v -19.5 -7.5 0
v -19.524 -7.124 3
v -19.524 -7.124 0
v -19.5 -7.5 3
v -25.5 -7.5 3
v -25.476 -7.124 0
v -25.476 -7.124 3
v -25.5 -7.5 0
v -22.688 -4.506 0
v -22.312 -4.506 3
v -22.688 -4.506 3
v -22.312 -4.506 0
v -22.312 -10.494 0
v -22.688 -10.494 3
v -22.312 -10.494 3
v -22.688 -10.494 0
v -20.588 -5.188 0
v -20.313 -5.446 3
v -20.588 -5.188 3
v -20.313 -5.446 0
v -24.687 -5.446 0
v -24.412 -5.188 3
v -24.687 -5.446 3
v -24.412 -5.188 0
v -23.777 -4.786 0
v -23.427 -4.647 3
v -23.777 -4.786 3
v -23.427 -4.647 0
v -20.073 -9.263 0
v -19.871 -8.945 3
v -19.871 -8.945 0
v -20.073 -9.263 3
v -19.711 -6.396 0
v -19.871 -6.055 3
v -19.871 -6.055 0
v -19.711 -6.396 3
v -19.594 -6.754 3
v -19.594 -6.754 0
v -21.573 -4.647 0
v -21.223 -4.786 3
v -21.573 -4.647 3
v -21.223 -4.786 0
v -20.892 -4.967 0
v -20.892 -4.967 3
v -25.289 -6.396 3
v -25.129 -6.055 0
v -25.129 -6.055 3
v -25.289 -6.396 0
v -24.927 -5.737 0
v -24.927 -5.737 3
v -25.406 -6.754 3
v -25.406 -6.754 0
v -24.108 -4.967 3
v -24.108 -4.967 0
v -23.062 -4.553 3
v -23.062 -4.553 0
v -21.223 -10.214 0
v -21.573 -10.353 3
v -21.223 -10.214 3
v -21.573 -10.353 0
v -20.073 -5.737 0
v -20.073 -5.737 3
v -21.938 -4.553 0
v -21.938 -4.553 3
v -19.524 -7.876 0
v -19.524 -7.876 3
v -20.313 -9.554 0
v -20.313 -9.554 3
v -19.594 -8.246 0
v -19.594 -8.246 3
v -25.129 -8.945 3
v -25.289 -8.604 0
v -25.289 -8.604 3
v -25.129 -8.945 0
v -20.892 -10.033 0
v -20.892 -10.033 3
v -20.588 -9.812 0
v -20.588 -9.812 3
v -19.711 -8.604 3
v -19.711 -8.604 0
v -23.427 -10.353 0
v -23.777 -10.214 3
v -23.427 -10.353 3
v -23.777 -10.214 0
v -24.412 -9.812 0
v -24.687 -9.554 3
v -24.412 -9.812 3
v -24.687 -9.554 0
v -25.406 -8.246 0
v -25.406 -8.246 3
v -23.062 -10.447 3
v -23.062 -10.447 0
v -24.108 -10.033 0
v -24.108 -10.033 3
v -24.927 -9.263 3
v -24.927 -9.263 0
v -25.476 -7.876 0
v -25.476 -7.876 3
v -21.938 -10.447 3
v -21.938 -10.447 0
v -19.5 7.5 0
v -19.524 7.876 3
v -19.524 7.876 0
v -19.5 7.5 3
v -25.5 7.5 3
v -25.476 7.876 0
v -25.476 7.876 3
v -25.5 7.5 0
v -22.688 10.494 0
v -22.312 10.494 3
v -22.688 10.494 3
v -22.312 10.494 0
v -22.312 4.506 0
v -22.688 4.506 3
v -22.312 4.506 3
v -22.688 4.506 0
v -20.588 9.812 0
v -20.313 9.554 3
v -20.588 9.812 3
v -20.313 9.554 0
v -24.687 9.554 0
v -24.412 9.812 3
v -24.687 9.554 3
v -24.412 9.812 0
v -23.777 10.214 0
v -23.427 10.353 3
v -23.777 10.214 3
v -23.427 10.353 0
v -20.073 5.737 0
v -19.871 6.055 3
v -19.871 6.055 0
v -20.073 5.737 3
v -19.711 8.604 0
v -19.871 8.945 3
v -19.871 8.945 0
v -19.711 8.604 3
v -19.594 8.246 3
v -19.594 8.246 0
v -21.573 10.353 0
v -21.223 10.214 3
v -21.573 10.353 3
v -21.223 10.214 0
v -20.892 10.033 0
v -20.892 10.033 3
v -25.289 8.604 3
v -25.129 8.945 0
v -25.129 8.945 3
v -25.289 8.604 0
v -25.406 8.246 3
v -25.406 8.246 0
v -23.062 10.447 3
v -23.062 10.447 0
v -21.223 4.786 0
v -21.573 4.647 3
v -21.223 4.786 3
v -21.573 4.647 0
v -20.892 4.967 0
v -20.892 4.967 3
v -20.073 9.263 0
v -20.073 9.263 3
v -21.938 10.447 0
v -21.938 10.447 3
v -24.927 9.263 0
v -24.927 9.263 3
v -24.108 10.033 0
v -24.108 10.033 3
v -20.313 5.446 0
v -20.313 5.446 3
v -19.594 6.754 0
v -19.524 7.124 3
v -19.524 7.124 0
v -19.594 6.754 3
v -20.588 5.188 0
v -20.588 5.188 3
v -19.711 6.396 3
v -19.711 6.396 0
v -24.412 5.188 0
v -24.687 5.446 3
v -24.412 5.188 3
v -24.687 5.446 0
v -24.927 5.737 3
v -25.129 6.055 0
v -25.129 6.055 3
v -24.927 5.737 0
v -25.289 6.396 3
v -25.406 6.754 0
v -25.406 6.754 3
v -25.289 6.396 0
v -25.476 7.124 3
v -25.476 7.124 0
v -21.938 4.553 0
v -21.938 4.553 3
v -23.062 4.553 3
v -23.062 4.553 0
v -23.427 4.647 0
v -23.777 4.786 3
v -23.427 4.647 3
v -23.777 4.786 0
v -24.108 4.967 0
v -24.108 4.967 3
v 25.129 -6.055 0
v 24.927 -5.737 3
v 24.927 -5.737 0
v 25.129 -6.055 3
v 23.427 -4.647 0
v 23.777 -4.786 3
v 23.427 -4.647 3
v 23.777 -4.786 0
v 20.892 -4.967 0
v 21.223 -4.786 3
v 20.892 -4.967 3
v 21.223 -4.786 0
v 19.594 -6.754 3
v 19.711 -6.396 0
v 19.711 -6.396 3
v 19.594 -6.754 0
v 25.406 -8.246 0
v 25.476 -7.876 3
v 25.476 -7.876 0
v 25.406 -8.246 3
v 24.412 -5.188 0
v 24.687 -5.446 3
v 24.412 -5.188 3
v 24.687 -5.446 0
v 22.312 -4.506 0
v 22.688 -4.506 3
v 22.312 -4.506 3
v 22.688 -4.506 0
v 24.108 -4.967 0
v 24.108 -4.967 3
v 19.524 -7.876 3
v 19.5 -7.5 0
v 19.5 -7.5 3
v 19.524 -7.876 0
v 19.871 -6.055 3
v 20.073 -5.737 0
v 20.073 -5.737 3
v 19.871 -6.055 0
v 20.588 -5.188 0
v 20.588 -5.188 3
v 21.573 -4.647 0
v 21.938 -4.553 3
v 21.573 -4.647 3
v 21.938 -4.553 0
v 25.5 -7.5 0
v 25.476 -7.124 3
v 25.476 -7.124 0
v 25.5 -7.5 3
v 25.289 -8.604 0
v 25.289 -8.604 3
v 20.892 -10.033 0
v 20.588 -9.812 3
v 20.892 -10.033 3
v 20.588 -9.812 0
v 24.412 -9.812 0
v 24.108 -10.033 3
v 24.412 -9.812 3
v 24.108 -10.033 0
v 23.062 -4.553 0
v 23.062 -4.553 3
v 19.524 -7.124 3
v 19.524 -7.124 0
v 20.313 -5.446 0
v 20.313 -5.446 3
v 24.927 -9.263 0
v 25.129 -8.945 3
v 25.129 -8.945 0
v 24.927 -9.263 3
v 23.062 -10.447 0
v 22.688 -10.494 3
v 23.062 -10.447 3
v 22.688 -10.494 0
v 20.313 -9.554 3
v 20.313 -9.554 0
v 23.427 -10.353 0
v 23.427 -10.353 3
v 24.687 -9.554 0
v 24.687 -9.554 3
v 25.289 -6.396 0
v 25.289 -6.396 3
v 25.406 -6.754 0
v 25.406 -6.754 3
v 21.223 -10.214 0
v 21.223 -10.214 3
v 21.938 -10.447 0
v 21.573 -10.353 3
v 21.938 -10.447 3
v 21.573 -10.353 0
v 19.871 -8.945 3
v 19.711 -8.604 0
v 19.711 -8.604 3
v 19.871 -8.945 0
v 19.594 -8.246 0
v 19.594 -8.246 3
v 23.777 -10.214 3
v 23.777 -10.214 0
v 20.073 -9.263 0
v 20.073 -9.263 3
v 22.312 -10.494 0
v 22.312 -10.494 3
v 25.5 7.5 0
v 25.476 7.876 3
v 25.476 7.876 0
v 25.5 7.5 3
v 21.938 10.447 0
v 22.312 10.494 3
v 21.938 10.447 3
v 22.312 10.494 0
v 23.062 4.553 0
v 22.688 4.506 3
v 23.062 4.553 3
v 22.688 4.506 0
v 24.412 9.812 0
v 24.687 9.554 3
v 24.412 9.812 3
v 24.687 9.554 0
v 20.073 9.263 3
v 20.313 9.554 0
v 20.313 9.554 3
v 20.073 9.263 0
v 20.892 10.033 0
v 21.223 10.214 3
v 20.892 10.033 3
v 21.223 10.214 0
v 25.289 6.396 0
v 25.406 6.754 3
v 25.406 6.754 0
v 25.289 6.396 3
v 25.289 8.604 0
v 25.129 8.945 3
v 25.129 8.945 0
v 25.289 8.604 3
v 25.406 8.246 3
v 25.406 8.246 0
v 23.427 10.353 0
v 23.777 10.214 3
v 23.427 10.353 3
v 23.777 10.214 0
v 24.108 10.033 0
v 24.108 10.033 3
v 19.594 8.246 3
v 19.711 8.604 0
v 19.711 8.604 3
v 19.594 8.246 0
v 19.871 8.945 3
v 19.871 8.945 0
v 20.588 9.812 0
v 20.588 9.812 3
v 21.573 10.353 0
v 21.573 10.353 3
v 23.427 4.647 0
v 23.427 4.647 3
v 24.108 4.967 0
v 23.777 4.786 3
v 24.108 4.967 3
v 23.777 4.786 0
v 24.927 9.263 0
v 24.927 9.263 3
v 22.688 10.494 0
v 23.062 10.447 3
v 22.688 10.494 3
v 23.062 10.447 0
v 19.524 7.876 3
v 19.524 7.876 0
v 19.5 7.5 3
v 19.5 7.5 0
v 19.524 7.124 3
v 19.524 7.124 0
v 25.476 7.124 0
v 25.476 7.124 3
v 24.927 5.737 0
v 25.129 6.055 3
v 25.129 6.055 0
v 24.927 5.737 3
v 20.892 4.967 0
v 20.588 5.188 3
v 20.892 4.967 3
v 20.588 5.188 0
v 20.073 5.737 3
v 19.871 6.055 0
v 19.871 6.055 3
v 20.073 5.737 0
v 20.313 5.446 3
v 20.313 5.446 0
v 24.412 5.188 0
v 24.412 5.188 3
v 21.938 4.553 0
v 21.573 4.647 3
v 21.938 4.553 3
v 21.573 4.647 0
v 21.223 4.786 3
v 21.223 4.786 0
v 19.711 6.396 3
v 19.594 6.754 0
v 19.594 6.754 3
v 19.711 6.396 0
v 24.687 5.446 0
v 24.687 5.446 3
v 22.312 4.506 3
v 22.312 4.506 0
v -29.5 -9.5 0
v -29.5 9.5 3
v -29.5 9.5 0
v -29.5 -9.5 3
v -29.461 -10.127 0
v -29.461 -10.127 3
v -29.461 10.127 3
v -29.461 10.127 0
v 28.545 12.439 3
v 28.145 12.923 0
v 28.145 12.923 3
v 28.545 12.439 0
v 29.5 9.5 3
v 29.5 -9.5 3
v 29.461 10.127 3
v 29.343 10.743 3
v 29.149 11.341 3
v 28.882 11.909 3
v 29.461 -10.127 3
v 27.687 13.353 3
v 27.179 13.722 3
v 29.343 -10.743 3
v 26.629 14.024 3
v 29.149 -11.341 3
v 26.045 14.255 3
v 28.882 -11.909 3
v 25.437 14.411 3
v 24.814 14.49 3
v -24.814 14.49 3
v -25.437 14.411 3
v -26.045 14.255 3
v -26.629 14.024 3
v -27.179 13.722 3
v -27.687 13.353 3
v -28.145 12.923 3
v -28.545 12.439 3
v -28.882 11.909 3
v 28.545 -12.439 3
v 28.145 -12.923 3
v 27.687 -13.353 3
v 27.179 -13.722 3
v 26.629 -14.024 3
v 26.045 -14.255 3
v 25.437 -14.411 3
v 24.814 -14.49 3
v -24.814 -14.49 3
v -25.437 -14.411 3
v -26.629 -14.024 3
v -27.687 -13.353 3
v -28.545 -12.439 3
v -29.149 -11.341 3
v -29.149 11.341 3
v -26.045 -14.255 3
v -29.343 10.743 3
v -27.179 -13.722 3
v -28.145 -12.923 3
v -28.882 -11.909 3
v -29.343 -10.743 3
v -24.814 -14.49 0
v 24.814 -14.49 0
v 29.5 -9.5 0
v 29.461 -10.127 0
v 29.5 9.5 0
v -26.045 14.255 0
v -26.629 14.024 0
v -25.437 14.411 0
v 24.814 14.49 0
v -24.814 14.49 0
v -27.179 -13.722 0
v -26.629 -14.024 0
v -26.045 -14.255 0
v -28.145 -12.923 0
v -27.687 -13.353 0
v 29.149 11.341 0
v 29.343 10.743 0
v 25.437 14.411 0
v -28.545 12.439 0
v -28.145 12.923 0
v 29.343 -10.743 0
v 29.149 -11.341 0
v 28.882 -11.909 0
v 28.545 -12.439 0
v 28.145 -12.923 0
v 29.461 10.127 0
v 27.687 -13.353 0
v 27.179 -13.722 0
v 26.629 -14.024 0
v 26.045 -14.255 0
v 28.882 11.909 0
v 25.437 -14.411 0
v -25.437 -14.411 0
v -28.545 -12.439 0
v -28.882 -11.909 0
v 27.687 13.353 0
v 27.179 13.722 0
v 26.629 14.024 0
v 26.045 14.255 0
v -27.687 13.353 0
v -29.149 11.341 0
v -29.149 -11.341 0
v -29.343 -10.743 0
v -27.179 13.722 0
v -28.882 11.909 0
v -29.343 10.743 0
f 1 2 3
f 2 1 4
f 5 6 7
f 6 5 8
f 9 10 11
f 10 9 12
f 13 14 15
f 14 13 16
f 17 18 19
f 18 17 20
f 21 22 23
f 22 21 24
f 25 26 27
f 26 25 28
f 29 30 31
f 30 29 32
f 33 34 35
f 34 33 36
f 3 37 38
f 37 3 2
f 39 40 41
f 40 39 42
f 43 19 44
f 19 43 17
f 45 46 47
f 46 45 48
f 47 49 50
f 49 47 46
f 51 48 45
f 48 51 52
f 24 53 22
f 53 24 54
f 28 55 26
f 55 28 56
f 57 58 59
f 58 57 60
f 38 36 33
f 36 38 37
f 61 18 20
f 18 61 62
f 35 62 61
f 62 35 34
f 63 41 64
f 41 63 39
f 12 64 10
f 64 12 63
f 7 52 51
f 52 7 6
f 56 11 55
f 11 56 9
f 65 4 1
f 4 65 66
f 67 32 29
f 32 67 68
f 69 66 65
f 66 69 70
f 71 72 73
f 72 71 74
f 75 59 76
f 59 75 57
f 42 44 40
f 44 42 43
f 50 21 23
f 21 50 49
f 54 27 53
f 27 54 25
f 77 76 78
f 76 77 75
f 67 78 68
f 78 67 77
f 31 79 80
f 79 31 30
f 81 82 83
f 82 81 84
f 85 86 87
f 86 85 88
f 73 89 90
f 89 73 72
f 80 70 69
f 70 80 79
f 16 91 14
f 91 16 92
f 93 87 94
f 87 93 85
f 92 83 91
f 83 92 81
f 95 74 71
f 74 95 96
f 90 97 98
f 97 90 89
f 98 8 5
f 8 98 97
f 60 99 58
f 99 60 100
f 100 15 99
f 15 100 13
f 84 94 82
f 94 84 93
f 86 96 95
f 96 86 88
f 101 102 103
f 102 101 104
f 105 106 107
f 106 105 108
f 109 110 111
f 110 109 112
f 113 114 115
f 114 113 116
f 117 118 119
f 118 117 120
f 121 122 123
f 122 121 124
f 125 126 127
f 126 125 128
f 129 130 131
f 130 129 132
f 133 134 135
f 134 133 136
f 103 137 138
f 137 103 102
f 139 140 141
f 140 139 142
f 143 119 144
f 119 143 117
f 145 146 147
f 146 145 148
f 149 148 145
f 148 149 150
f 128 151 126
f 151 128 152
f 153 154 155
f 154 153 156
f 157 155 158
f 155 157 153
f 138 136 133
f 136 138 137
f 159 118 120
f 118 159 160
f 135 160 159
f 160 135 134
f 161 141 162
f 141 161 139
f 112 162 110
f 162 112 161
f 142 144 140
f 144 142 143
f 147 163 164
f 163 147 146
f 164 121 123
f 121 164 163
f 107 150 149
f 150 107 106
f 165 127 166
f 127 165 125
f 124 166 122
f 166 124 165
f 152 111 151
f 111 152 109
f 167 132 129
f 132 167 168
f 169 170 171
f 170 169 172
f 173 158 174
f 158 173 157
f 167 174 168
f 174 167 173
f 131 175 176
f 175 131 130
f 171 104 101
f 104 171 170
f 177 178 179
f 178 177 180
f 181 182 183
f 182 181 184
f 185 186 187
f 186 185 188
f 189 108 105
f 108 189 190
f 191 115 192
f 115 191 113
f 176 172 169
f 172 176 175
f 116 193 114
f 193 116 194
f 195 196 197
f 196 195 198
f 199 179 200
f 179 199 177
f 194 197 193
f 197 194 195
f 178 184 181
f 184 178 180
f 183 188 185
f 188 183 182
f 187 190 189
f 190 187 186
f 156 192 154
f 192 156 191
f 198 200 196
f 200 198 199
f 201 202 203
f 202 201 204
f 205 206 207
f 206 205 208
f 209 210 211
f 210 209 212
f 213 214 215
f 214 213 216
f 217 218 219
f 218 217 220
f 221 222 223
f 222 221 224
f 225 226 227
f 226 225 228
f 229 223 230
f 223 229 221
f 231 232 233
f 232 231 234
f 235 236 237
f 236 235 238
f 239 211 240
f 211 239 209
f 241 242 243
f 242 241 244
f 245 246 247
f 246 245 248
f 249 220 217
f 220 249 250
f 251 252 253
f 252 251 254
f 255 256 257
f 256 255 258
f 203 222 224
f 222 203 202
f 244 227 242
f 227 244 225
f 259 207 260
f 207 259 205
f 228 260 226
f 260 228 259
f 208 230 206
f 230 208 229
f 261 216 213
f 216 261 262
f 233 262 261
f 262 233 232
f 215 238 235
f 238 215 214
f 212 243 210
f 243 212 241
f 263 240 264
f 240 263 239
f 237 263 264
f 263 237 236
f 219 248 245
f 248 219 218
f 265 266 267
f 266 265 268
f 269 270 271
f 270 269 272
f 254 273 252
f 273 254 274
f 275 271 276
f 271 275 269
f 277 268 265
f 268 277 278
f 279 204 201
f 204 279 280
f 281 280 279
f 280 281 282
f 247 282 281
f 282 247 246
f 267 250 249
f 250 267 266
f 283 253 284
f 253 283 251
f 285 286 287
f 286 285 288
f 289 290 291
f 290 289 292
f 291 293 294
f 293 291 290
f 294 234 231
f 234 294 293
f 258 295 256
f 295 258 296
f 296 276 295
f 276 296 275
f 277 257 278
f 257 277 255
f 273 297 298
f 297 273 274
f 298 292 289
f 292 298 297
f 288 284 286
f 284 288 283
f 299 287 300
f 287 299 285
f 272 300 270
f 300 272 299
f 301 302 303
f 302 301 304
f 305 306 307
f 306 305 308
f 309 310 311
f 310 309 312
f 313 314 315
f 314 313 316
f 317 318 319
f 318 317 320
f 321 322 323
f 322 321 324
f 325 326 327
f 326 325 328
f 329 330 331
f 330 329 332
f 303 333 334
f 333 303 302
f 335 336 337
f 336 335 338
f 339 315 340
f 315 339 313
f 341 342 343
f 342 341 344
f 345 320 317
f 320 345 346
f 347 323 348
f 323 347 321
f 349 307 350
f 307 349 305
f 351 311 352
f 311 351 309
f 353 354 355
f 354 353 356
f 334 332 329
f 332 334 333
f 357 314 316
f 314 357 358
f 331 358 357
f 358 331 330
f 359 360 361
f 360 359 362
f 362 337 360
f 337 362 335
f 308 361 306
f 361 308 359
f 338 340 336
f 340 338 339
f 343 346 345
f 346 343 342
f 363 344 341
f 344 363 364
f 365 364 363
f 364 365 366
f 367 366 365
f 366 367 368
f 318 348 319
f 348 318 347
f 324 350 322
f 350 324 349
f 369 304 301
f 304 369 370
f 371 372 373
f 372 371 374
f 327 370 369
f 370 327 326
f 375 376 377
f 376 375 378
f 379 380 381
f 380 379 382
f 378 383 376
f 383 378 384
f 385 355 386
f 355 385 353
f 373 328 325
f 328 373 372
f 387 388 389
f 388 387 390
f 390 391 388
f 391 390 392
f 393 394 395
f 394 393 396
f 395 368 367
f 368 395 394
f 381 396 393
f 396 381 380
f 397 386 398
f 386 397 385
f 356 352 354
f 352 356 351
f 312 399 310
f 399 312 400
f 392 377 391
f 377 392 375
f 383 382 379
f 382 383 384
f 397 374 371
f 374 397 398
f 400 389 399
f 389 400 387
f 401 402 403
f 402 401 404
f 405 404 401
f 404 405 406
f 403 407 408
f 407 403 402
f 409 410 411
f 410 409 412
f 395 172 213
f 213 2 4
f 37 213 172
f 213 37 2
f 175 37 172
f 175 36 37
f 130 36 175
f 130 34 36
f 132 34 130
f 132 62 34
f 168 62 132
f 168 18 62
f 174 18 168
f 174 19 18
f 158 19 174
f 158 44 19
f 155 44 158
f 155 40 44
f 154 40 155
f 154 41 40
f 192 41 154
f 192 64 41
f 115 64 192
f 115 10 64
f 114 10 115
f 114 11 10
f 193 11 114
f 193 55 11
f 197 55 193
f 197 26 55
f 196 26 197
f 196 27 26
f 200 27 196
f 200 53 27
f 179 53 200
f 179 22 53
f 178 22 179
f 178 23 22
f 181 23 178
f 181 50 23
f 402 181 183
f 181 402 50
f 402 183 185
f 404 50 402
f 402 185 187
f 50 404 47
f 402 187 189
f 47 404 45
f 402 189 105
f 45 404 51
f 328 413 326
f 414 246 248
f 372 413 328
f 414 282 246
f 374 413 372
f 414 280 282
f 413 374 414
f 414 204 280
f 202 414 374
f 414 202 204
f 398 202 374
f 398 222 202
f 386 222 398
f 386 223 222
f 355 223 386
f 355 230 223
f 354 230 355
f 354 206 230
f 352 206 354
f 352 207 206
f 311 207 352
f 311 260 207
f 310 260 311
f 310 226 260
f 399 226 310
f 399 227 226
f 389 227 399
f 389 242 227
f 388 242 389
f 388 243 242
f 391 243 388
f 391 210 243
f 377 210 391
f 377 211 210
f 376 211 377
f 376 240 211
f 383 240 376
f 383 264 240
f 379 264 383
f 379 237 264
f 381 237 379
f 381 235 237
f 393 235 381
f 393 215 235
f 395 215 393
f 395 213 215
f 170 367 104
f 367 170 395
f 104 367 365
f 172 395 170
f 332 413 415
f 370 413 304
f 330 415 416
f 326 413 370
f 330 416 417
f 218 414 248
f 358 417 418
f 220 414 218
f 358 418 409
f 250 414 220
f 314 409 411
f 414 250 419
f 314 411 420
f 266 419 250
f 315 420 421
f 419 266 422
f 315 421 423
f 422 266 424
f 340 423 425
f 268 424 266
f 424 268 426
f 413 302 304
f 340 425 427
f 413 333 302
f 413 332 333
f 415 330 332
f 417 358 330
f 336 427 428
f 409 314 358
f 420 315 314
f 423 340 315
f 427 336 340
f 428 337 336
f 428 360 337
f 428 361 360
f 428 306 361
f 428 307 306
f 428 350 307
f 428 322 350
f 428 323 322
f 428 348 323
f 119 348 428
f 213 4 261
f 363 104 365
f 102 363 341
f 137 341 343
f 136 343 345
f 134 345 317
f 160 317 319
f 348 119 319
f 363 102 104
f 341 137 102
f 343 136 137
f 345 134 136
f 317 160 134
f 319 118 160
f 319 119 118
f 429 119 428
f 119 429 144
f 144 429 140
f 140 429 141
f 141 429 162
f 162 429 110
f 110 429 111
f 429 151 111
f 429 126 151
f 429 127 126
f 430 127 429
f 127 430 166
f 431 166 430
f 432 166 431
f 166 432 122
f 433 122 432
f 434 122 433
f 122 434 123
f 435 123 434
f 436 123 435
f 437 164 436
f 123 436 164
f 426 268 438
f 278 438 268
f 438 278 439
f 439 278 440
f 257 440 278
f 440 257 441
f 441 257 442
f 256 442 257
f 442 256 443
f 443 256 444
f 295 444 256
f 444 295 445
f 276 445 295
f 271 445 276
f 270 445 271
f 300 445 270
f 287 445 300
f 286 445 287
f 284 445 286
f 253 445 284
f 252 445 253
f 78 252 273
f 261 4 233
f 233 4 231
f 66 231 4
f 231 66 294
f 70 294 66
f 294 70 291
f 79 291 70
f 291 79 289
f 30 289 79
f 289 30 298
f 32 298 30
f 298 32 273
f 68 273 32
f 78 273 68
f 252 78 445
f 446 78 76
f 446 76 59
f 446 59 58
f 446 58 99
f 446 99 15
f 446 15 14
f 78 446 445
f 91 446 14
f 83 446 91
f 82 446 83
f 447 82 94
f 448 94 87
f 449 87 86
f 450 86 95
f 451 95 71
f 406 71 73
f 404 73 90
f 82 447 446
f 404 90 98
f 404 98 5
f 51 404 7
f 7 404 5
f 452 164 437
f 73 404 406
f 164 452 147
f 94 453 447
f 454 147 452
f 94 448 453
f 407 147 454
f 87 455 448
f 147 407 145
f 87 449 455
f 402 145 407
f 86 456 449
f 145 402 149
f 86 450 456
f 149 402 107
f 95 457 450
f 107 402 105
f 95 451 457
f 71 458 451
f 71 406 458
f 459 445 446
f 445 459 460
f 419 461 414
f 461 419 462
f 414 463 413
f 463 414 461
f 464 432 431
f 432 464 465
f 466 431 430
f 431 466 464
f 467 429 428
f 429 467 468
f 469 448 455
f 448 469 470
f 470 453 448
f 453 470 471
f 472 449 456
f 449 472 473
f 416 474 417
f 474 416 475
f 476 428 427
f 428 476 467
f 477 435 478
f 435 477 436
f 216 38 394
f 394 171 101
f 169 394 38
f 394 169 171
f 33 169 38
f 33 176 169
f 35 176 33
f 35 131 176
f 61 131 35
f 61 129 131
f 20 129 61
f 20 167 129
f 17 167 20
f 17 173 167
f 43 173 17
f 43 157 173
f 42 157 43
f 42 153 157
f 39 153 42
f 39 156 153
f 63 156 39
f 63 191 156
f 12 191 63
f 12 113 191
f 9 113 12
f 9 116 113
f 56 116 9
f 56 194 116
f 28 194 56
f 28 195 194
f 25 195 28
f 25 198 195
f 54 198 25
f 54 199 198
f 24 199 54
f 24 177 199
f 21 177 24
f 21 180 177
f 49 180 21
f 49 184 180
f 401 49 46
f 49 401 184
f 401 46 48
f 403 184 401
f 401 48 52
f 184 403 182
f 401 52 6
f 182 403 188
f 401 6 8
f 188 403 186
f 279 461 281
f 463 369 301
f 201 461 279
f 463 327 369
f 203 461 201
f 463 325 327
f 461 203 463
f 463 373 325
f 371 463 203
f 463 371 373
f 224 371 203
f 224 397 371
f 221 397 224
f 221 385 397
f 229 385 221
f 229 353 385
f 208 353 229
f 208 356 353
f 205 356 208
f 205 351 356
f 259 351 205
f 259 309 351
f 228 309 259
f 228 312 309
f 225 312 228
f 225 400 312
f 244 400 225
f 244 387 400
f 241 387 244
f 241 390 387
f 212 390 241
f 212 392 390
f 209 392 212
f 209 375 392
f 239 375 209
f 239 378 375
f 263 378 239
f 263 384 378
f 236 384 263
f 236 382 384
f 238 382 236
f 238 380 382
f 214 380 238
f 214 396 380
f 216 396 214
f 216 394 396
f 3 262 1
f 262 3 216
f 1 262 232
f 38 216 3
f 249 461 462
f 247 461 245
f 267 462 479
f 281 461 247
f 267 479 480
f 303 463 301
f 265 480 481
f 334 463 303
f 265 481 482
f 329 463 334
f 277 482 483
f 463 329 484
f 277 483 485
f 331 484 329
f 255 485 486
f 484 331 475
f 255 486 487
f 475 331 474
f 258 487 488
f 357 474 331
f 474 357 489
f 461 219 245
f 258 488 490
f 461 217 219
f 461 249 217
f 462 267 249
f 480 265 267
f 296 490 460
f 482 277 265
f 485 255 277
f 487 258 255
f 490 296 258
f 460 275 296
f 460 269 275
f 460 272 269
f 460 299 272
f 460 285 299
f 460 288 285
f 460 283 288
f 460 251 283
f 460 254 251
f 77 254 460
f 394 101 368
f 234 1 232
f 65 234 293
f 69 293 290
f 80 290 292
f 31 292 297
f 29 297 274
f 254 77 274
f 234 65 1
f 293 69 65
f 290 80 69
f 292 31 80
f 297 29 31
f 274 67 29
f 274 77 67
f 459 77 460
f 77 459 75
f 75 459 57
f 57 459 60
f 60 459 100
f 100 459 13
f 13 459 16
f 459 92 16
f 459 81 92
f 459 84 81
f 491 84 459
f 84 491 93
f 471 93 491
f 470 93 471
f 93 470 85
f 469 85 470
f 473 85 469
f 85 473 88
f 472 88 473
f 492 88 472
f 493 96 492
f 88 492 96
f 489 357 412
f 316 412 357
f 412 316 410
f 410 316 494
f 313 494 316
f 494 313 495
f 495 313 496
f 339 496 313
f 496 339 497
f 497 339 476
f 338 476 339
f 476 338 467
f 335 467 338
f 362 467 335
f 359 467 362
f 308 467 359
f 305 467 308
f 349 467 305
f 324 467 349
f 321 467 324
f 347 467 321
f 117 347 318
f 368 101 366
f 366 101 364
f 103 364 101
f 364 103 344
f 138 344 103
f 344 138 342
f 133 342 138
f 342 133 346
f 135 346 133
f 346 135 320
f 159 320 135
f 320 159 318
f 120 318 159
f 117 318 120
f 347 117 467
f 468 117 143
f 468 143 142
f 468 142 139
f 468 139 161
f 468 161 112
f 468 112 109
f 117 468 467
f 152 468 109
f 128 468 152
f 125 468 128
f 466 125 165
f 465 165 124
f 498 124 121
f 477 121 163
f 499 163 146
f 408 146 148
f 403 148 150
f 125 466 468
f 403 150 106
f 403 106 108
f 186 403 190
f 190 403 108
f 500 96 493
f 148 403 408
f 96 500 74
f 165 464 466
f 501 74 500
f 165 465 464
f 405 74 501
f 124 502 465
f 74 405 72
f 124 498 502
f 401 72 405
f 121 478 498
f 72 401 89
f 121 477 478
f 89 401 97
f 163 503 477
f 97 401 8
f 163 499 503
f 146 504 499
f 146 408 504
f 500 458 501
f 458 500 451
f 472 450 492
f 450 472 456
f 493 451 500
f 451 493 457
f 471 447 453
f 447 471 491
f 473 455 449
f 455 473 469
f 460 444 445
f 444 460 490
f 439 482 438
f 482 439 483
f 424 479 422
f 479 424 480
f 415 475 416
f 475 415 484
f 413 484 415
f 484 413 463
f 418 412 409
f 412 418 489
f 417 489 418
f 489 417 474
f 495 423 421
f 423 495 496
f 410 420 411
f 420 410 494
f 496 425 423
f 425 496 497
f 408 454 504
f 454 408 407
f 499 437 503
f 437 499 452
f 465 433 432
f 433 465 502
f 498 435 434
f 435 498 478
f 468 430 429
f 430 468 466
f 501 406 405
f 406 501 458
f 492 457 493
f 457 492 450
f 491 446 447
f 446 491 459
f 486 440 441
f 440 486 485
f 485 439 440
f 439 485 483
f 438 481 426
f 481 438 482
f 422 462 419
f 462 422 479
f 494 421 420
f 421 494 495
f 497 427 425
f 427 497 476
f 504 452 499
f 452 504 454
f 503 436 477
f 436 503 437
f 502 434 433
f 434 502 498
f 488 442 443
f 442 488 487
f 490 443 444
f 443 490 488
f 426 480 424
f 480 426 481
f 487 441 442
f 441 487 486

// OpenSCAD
$fn = 50;


difference() {
	union() {
		hull() {
			translate(v = [-24.5000000000, 9.5000000000, 0]) {
				cylinder(h = 3, r = 5);
			}
			translate(v = [24.5000000000, 9.5000000000, 0]) {
				cylinder(h = 3, r = 5);
			}
			translate(v = [-24.5000000000, -9.5000000000, 0]) {
				cylinder(h = 3, r = 5);
			}
			translate(v = [24.5000000000, -9.5000000000, 0]) {
				cylinder(h = 3, r = 5);
			}
		}
	}
	union() {
		translate(v = [-22.5000000000, -7.5000000000, -100.0000000000]) {
			cylinder(h = 200, r = 3.0000000000);
		}
		translate(v = [-22.5000000000, 7.5000000000, -100.0000000000]) {
			cylinder(h = 200, r = 3.0000000000);
		}
		translate(v = [22.5000000000, -7.5000000000, -100.0000000000]) {
			cylinder(h = 200, r = 3.0000000000);
		}
		translate(v = [22.5000000000, 7.5000000000, -100.0000000000]) {
			cylinder(h = 200, r = 3.0000000000);
		}
	}
}
